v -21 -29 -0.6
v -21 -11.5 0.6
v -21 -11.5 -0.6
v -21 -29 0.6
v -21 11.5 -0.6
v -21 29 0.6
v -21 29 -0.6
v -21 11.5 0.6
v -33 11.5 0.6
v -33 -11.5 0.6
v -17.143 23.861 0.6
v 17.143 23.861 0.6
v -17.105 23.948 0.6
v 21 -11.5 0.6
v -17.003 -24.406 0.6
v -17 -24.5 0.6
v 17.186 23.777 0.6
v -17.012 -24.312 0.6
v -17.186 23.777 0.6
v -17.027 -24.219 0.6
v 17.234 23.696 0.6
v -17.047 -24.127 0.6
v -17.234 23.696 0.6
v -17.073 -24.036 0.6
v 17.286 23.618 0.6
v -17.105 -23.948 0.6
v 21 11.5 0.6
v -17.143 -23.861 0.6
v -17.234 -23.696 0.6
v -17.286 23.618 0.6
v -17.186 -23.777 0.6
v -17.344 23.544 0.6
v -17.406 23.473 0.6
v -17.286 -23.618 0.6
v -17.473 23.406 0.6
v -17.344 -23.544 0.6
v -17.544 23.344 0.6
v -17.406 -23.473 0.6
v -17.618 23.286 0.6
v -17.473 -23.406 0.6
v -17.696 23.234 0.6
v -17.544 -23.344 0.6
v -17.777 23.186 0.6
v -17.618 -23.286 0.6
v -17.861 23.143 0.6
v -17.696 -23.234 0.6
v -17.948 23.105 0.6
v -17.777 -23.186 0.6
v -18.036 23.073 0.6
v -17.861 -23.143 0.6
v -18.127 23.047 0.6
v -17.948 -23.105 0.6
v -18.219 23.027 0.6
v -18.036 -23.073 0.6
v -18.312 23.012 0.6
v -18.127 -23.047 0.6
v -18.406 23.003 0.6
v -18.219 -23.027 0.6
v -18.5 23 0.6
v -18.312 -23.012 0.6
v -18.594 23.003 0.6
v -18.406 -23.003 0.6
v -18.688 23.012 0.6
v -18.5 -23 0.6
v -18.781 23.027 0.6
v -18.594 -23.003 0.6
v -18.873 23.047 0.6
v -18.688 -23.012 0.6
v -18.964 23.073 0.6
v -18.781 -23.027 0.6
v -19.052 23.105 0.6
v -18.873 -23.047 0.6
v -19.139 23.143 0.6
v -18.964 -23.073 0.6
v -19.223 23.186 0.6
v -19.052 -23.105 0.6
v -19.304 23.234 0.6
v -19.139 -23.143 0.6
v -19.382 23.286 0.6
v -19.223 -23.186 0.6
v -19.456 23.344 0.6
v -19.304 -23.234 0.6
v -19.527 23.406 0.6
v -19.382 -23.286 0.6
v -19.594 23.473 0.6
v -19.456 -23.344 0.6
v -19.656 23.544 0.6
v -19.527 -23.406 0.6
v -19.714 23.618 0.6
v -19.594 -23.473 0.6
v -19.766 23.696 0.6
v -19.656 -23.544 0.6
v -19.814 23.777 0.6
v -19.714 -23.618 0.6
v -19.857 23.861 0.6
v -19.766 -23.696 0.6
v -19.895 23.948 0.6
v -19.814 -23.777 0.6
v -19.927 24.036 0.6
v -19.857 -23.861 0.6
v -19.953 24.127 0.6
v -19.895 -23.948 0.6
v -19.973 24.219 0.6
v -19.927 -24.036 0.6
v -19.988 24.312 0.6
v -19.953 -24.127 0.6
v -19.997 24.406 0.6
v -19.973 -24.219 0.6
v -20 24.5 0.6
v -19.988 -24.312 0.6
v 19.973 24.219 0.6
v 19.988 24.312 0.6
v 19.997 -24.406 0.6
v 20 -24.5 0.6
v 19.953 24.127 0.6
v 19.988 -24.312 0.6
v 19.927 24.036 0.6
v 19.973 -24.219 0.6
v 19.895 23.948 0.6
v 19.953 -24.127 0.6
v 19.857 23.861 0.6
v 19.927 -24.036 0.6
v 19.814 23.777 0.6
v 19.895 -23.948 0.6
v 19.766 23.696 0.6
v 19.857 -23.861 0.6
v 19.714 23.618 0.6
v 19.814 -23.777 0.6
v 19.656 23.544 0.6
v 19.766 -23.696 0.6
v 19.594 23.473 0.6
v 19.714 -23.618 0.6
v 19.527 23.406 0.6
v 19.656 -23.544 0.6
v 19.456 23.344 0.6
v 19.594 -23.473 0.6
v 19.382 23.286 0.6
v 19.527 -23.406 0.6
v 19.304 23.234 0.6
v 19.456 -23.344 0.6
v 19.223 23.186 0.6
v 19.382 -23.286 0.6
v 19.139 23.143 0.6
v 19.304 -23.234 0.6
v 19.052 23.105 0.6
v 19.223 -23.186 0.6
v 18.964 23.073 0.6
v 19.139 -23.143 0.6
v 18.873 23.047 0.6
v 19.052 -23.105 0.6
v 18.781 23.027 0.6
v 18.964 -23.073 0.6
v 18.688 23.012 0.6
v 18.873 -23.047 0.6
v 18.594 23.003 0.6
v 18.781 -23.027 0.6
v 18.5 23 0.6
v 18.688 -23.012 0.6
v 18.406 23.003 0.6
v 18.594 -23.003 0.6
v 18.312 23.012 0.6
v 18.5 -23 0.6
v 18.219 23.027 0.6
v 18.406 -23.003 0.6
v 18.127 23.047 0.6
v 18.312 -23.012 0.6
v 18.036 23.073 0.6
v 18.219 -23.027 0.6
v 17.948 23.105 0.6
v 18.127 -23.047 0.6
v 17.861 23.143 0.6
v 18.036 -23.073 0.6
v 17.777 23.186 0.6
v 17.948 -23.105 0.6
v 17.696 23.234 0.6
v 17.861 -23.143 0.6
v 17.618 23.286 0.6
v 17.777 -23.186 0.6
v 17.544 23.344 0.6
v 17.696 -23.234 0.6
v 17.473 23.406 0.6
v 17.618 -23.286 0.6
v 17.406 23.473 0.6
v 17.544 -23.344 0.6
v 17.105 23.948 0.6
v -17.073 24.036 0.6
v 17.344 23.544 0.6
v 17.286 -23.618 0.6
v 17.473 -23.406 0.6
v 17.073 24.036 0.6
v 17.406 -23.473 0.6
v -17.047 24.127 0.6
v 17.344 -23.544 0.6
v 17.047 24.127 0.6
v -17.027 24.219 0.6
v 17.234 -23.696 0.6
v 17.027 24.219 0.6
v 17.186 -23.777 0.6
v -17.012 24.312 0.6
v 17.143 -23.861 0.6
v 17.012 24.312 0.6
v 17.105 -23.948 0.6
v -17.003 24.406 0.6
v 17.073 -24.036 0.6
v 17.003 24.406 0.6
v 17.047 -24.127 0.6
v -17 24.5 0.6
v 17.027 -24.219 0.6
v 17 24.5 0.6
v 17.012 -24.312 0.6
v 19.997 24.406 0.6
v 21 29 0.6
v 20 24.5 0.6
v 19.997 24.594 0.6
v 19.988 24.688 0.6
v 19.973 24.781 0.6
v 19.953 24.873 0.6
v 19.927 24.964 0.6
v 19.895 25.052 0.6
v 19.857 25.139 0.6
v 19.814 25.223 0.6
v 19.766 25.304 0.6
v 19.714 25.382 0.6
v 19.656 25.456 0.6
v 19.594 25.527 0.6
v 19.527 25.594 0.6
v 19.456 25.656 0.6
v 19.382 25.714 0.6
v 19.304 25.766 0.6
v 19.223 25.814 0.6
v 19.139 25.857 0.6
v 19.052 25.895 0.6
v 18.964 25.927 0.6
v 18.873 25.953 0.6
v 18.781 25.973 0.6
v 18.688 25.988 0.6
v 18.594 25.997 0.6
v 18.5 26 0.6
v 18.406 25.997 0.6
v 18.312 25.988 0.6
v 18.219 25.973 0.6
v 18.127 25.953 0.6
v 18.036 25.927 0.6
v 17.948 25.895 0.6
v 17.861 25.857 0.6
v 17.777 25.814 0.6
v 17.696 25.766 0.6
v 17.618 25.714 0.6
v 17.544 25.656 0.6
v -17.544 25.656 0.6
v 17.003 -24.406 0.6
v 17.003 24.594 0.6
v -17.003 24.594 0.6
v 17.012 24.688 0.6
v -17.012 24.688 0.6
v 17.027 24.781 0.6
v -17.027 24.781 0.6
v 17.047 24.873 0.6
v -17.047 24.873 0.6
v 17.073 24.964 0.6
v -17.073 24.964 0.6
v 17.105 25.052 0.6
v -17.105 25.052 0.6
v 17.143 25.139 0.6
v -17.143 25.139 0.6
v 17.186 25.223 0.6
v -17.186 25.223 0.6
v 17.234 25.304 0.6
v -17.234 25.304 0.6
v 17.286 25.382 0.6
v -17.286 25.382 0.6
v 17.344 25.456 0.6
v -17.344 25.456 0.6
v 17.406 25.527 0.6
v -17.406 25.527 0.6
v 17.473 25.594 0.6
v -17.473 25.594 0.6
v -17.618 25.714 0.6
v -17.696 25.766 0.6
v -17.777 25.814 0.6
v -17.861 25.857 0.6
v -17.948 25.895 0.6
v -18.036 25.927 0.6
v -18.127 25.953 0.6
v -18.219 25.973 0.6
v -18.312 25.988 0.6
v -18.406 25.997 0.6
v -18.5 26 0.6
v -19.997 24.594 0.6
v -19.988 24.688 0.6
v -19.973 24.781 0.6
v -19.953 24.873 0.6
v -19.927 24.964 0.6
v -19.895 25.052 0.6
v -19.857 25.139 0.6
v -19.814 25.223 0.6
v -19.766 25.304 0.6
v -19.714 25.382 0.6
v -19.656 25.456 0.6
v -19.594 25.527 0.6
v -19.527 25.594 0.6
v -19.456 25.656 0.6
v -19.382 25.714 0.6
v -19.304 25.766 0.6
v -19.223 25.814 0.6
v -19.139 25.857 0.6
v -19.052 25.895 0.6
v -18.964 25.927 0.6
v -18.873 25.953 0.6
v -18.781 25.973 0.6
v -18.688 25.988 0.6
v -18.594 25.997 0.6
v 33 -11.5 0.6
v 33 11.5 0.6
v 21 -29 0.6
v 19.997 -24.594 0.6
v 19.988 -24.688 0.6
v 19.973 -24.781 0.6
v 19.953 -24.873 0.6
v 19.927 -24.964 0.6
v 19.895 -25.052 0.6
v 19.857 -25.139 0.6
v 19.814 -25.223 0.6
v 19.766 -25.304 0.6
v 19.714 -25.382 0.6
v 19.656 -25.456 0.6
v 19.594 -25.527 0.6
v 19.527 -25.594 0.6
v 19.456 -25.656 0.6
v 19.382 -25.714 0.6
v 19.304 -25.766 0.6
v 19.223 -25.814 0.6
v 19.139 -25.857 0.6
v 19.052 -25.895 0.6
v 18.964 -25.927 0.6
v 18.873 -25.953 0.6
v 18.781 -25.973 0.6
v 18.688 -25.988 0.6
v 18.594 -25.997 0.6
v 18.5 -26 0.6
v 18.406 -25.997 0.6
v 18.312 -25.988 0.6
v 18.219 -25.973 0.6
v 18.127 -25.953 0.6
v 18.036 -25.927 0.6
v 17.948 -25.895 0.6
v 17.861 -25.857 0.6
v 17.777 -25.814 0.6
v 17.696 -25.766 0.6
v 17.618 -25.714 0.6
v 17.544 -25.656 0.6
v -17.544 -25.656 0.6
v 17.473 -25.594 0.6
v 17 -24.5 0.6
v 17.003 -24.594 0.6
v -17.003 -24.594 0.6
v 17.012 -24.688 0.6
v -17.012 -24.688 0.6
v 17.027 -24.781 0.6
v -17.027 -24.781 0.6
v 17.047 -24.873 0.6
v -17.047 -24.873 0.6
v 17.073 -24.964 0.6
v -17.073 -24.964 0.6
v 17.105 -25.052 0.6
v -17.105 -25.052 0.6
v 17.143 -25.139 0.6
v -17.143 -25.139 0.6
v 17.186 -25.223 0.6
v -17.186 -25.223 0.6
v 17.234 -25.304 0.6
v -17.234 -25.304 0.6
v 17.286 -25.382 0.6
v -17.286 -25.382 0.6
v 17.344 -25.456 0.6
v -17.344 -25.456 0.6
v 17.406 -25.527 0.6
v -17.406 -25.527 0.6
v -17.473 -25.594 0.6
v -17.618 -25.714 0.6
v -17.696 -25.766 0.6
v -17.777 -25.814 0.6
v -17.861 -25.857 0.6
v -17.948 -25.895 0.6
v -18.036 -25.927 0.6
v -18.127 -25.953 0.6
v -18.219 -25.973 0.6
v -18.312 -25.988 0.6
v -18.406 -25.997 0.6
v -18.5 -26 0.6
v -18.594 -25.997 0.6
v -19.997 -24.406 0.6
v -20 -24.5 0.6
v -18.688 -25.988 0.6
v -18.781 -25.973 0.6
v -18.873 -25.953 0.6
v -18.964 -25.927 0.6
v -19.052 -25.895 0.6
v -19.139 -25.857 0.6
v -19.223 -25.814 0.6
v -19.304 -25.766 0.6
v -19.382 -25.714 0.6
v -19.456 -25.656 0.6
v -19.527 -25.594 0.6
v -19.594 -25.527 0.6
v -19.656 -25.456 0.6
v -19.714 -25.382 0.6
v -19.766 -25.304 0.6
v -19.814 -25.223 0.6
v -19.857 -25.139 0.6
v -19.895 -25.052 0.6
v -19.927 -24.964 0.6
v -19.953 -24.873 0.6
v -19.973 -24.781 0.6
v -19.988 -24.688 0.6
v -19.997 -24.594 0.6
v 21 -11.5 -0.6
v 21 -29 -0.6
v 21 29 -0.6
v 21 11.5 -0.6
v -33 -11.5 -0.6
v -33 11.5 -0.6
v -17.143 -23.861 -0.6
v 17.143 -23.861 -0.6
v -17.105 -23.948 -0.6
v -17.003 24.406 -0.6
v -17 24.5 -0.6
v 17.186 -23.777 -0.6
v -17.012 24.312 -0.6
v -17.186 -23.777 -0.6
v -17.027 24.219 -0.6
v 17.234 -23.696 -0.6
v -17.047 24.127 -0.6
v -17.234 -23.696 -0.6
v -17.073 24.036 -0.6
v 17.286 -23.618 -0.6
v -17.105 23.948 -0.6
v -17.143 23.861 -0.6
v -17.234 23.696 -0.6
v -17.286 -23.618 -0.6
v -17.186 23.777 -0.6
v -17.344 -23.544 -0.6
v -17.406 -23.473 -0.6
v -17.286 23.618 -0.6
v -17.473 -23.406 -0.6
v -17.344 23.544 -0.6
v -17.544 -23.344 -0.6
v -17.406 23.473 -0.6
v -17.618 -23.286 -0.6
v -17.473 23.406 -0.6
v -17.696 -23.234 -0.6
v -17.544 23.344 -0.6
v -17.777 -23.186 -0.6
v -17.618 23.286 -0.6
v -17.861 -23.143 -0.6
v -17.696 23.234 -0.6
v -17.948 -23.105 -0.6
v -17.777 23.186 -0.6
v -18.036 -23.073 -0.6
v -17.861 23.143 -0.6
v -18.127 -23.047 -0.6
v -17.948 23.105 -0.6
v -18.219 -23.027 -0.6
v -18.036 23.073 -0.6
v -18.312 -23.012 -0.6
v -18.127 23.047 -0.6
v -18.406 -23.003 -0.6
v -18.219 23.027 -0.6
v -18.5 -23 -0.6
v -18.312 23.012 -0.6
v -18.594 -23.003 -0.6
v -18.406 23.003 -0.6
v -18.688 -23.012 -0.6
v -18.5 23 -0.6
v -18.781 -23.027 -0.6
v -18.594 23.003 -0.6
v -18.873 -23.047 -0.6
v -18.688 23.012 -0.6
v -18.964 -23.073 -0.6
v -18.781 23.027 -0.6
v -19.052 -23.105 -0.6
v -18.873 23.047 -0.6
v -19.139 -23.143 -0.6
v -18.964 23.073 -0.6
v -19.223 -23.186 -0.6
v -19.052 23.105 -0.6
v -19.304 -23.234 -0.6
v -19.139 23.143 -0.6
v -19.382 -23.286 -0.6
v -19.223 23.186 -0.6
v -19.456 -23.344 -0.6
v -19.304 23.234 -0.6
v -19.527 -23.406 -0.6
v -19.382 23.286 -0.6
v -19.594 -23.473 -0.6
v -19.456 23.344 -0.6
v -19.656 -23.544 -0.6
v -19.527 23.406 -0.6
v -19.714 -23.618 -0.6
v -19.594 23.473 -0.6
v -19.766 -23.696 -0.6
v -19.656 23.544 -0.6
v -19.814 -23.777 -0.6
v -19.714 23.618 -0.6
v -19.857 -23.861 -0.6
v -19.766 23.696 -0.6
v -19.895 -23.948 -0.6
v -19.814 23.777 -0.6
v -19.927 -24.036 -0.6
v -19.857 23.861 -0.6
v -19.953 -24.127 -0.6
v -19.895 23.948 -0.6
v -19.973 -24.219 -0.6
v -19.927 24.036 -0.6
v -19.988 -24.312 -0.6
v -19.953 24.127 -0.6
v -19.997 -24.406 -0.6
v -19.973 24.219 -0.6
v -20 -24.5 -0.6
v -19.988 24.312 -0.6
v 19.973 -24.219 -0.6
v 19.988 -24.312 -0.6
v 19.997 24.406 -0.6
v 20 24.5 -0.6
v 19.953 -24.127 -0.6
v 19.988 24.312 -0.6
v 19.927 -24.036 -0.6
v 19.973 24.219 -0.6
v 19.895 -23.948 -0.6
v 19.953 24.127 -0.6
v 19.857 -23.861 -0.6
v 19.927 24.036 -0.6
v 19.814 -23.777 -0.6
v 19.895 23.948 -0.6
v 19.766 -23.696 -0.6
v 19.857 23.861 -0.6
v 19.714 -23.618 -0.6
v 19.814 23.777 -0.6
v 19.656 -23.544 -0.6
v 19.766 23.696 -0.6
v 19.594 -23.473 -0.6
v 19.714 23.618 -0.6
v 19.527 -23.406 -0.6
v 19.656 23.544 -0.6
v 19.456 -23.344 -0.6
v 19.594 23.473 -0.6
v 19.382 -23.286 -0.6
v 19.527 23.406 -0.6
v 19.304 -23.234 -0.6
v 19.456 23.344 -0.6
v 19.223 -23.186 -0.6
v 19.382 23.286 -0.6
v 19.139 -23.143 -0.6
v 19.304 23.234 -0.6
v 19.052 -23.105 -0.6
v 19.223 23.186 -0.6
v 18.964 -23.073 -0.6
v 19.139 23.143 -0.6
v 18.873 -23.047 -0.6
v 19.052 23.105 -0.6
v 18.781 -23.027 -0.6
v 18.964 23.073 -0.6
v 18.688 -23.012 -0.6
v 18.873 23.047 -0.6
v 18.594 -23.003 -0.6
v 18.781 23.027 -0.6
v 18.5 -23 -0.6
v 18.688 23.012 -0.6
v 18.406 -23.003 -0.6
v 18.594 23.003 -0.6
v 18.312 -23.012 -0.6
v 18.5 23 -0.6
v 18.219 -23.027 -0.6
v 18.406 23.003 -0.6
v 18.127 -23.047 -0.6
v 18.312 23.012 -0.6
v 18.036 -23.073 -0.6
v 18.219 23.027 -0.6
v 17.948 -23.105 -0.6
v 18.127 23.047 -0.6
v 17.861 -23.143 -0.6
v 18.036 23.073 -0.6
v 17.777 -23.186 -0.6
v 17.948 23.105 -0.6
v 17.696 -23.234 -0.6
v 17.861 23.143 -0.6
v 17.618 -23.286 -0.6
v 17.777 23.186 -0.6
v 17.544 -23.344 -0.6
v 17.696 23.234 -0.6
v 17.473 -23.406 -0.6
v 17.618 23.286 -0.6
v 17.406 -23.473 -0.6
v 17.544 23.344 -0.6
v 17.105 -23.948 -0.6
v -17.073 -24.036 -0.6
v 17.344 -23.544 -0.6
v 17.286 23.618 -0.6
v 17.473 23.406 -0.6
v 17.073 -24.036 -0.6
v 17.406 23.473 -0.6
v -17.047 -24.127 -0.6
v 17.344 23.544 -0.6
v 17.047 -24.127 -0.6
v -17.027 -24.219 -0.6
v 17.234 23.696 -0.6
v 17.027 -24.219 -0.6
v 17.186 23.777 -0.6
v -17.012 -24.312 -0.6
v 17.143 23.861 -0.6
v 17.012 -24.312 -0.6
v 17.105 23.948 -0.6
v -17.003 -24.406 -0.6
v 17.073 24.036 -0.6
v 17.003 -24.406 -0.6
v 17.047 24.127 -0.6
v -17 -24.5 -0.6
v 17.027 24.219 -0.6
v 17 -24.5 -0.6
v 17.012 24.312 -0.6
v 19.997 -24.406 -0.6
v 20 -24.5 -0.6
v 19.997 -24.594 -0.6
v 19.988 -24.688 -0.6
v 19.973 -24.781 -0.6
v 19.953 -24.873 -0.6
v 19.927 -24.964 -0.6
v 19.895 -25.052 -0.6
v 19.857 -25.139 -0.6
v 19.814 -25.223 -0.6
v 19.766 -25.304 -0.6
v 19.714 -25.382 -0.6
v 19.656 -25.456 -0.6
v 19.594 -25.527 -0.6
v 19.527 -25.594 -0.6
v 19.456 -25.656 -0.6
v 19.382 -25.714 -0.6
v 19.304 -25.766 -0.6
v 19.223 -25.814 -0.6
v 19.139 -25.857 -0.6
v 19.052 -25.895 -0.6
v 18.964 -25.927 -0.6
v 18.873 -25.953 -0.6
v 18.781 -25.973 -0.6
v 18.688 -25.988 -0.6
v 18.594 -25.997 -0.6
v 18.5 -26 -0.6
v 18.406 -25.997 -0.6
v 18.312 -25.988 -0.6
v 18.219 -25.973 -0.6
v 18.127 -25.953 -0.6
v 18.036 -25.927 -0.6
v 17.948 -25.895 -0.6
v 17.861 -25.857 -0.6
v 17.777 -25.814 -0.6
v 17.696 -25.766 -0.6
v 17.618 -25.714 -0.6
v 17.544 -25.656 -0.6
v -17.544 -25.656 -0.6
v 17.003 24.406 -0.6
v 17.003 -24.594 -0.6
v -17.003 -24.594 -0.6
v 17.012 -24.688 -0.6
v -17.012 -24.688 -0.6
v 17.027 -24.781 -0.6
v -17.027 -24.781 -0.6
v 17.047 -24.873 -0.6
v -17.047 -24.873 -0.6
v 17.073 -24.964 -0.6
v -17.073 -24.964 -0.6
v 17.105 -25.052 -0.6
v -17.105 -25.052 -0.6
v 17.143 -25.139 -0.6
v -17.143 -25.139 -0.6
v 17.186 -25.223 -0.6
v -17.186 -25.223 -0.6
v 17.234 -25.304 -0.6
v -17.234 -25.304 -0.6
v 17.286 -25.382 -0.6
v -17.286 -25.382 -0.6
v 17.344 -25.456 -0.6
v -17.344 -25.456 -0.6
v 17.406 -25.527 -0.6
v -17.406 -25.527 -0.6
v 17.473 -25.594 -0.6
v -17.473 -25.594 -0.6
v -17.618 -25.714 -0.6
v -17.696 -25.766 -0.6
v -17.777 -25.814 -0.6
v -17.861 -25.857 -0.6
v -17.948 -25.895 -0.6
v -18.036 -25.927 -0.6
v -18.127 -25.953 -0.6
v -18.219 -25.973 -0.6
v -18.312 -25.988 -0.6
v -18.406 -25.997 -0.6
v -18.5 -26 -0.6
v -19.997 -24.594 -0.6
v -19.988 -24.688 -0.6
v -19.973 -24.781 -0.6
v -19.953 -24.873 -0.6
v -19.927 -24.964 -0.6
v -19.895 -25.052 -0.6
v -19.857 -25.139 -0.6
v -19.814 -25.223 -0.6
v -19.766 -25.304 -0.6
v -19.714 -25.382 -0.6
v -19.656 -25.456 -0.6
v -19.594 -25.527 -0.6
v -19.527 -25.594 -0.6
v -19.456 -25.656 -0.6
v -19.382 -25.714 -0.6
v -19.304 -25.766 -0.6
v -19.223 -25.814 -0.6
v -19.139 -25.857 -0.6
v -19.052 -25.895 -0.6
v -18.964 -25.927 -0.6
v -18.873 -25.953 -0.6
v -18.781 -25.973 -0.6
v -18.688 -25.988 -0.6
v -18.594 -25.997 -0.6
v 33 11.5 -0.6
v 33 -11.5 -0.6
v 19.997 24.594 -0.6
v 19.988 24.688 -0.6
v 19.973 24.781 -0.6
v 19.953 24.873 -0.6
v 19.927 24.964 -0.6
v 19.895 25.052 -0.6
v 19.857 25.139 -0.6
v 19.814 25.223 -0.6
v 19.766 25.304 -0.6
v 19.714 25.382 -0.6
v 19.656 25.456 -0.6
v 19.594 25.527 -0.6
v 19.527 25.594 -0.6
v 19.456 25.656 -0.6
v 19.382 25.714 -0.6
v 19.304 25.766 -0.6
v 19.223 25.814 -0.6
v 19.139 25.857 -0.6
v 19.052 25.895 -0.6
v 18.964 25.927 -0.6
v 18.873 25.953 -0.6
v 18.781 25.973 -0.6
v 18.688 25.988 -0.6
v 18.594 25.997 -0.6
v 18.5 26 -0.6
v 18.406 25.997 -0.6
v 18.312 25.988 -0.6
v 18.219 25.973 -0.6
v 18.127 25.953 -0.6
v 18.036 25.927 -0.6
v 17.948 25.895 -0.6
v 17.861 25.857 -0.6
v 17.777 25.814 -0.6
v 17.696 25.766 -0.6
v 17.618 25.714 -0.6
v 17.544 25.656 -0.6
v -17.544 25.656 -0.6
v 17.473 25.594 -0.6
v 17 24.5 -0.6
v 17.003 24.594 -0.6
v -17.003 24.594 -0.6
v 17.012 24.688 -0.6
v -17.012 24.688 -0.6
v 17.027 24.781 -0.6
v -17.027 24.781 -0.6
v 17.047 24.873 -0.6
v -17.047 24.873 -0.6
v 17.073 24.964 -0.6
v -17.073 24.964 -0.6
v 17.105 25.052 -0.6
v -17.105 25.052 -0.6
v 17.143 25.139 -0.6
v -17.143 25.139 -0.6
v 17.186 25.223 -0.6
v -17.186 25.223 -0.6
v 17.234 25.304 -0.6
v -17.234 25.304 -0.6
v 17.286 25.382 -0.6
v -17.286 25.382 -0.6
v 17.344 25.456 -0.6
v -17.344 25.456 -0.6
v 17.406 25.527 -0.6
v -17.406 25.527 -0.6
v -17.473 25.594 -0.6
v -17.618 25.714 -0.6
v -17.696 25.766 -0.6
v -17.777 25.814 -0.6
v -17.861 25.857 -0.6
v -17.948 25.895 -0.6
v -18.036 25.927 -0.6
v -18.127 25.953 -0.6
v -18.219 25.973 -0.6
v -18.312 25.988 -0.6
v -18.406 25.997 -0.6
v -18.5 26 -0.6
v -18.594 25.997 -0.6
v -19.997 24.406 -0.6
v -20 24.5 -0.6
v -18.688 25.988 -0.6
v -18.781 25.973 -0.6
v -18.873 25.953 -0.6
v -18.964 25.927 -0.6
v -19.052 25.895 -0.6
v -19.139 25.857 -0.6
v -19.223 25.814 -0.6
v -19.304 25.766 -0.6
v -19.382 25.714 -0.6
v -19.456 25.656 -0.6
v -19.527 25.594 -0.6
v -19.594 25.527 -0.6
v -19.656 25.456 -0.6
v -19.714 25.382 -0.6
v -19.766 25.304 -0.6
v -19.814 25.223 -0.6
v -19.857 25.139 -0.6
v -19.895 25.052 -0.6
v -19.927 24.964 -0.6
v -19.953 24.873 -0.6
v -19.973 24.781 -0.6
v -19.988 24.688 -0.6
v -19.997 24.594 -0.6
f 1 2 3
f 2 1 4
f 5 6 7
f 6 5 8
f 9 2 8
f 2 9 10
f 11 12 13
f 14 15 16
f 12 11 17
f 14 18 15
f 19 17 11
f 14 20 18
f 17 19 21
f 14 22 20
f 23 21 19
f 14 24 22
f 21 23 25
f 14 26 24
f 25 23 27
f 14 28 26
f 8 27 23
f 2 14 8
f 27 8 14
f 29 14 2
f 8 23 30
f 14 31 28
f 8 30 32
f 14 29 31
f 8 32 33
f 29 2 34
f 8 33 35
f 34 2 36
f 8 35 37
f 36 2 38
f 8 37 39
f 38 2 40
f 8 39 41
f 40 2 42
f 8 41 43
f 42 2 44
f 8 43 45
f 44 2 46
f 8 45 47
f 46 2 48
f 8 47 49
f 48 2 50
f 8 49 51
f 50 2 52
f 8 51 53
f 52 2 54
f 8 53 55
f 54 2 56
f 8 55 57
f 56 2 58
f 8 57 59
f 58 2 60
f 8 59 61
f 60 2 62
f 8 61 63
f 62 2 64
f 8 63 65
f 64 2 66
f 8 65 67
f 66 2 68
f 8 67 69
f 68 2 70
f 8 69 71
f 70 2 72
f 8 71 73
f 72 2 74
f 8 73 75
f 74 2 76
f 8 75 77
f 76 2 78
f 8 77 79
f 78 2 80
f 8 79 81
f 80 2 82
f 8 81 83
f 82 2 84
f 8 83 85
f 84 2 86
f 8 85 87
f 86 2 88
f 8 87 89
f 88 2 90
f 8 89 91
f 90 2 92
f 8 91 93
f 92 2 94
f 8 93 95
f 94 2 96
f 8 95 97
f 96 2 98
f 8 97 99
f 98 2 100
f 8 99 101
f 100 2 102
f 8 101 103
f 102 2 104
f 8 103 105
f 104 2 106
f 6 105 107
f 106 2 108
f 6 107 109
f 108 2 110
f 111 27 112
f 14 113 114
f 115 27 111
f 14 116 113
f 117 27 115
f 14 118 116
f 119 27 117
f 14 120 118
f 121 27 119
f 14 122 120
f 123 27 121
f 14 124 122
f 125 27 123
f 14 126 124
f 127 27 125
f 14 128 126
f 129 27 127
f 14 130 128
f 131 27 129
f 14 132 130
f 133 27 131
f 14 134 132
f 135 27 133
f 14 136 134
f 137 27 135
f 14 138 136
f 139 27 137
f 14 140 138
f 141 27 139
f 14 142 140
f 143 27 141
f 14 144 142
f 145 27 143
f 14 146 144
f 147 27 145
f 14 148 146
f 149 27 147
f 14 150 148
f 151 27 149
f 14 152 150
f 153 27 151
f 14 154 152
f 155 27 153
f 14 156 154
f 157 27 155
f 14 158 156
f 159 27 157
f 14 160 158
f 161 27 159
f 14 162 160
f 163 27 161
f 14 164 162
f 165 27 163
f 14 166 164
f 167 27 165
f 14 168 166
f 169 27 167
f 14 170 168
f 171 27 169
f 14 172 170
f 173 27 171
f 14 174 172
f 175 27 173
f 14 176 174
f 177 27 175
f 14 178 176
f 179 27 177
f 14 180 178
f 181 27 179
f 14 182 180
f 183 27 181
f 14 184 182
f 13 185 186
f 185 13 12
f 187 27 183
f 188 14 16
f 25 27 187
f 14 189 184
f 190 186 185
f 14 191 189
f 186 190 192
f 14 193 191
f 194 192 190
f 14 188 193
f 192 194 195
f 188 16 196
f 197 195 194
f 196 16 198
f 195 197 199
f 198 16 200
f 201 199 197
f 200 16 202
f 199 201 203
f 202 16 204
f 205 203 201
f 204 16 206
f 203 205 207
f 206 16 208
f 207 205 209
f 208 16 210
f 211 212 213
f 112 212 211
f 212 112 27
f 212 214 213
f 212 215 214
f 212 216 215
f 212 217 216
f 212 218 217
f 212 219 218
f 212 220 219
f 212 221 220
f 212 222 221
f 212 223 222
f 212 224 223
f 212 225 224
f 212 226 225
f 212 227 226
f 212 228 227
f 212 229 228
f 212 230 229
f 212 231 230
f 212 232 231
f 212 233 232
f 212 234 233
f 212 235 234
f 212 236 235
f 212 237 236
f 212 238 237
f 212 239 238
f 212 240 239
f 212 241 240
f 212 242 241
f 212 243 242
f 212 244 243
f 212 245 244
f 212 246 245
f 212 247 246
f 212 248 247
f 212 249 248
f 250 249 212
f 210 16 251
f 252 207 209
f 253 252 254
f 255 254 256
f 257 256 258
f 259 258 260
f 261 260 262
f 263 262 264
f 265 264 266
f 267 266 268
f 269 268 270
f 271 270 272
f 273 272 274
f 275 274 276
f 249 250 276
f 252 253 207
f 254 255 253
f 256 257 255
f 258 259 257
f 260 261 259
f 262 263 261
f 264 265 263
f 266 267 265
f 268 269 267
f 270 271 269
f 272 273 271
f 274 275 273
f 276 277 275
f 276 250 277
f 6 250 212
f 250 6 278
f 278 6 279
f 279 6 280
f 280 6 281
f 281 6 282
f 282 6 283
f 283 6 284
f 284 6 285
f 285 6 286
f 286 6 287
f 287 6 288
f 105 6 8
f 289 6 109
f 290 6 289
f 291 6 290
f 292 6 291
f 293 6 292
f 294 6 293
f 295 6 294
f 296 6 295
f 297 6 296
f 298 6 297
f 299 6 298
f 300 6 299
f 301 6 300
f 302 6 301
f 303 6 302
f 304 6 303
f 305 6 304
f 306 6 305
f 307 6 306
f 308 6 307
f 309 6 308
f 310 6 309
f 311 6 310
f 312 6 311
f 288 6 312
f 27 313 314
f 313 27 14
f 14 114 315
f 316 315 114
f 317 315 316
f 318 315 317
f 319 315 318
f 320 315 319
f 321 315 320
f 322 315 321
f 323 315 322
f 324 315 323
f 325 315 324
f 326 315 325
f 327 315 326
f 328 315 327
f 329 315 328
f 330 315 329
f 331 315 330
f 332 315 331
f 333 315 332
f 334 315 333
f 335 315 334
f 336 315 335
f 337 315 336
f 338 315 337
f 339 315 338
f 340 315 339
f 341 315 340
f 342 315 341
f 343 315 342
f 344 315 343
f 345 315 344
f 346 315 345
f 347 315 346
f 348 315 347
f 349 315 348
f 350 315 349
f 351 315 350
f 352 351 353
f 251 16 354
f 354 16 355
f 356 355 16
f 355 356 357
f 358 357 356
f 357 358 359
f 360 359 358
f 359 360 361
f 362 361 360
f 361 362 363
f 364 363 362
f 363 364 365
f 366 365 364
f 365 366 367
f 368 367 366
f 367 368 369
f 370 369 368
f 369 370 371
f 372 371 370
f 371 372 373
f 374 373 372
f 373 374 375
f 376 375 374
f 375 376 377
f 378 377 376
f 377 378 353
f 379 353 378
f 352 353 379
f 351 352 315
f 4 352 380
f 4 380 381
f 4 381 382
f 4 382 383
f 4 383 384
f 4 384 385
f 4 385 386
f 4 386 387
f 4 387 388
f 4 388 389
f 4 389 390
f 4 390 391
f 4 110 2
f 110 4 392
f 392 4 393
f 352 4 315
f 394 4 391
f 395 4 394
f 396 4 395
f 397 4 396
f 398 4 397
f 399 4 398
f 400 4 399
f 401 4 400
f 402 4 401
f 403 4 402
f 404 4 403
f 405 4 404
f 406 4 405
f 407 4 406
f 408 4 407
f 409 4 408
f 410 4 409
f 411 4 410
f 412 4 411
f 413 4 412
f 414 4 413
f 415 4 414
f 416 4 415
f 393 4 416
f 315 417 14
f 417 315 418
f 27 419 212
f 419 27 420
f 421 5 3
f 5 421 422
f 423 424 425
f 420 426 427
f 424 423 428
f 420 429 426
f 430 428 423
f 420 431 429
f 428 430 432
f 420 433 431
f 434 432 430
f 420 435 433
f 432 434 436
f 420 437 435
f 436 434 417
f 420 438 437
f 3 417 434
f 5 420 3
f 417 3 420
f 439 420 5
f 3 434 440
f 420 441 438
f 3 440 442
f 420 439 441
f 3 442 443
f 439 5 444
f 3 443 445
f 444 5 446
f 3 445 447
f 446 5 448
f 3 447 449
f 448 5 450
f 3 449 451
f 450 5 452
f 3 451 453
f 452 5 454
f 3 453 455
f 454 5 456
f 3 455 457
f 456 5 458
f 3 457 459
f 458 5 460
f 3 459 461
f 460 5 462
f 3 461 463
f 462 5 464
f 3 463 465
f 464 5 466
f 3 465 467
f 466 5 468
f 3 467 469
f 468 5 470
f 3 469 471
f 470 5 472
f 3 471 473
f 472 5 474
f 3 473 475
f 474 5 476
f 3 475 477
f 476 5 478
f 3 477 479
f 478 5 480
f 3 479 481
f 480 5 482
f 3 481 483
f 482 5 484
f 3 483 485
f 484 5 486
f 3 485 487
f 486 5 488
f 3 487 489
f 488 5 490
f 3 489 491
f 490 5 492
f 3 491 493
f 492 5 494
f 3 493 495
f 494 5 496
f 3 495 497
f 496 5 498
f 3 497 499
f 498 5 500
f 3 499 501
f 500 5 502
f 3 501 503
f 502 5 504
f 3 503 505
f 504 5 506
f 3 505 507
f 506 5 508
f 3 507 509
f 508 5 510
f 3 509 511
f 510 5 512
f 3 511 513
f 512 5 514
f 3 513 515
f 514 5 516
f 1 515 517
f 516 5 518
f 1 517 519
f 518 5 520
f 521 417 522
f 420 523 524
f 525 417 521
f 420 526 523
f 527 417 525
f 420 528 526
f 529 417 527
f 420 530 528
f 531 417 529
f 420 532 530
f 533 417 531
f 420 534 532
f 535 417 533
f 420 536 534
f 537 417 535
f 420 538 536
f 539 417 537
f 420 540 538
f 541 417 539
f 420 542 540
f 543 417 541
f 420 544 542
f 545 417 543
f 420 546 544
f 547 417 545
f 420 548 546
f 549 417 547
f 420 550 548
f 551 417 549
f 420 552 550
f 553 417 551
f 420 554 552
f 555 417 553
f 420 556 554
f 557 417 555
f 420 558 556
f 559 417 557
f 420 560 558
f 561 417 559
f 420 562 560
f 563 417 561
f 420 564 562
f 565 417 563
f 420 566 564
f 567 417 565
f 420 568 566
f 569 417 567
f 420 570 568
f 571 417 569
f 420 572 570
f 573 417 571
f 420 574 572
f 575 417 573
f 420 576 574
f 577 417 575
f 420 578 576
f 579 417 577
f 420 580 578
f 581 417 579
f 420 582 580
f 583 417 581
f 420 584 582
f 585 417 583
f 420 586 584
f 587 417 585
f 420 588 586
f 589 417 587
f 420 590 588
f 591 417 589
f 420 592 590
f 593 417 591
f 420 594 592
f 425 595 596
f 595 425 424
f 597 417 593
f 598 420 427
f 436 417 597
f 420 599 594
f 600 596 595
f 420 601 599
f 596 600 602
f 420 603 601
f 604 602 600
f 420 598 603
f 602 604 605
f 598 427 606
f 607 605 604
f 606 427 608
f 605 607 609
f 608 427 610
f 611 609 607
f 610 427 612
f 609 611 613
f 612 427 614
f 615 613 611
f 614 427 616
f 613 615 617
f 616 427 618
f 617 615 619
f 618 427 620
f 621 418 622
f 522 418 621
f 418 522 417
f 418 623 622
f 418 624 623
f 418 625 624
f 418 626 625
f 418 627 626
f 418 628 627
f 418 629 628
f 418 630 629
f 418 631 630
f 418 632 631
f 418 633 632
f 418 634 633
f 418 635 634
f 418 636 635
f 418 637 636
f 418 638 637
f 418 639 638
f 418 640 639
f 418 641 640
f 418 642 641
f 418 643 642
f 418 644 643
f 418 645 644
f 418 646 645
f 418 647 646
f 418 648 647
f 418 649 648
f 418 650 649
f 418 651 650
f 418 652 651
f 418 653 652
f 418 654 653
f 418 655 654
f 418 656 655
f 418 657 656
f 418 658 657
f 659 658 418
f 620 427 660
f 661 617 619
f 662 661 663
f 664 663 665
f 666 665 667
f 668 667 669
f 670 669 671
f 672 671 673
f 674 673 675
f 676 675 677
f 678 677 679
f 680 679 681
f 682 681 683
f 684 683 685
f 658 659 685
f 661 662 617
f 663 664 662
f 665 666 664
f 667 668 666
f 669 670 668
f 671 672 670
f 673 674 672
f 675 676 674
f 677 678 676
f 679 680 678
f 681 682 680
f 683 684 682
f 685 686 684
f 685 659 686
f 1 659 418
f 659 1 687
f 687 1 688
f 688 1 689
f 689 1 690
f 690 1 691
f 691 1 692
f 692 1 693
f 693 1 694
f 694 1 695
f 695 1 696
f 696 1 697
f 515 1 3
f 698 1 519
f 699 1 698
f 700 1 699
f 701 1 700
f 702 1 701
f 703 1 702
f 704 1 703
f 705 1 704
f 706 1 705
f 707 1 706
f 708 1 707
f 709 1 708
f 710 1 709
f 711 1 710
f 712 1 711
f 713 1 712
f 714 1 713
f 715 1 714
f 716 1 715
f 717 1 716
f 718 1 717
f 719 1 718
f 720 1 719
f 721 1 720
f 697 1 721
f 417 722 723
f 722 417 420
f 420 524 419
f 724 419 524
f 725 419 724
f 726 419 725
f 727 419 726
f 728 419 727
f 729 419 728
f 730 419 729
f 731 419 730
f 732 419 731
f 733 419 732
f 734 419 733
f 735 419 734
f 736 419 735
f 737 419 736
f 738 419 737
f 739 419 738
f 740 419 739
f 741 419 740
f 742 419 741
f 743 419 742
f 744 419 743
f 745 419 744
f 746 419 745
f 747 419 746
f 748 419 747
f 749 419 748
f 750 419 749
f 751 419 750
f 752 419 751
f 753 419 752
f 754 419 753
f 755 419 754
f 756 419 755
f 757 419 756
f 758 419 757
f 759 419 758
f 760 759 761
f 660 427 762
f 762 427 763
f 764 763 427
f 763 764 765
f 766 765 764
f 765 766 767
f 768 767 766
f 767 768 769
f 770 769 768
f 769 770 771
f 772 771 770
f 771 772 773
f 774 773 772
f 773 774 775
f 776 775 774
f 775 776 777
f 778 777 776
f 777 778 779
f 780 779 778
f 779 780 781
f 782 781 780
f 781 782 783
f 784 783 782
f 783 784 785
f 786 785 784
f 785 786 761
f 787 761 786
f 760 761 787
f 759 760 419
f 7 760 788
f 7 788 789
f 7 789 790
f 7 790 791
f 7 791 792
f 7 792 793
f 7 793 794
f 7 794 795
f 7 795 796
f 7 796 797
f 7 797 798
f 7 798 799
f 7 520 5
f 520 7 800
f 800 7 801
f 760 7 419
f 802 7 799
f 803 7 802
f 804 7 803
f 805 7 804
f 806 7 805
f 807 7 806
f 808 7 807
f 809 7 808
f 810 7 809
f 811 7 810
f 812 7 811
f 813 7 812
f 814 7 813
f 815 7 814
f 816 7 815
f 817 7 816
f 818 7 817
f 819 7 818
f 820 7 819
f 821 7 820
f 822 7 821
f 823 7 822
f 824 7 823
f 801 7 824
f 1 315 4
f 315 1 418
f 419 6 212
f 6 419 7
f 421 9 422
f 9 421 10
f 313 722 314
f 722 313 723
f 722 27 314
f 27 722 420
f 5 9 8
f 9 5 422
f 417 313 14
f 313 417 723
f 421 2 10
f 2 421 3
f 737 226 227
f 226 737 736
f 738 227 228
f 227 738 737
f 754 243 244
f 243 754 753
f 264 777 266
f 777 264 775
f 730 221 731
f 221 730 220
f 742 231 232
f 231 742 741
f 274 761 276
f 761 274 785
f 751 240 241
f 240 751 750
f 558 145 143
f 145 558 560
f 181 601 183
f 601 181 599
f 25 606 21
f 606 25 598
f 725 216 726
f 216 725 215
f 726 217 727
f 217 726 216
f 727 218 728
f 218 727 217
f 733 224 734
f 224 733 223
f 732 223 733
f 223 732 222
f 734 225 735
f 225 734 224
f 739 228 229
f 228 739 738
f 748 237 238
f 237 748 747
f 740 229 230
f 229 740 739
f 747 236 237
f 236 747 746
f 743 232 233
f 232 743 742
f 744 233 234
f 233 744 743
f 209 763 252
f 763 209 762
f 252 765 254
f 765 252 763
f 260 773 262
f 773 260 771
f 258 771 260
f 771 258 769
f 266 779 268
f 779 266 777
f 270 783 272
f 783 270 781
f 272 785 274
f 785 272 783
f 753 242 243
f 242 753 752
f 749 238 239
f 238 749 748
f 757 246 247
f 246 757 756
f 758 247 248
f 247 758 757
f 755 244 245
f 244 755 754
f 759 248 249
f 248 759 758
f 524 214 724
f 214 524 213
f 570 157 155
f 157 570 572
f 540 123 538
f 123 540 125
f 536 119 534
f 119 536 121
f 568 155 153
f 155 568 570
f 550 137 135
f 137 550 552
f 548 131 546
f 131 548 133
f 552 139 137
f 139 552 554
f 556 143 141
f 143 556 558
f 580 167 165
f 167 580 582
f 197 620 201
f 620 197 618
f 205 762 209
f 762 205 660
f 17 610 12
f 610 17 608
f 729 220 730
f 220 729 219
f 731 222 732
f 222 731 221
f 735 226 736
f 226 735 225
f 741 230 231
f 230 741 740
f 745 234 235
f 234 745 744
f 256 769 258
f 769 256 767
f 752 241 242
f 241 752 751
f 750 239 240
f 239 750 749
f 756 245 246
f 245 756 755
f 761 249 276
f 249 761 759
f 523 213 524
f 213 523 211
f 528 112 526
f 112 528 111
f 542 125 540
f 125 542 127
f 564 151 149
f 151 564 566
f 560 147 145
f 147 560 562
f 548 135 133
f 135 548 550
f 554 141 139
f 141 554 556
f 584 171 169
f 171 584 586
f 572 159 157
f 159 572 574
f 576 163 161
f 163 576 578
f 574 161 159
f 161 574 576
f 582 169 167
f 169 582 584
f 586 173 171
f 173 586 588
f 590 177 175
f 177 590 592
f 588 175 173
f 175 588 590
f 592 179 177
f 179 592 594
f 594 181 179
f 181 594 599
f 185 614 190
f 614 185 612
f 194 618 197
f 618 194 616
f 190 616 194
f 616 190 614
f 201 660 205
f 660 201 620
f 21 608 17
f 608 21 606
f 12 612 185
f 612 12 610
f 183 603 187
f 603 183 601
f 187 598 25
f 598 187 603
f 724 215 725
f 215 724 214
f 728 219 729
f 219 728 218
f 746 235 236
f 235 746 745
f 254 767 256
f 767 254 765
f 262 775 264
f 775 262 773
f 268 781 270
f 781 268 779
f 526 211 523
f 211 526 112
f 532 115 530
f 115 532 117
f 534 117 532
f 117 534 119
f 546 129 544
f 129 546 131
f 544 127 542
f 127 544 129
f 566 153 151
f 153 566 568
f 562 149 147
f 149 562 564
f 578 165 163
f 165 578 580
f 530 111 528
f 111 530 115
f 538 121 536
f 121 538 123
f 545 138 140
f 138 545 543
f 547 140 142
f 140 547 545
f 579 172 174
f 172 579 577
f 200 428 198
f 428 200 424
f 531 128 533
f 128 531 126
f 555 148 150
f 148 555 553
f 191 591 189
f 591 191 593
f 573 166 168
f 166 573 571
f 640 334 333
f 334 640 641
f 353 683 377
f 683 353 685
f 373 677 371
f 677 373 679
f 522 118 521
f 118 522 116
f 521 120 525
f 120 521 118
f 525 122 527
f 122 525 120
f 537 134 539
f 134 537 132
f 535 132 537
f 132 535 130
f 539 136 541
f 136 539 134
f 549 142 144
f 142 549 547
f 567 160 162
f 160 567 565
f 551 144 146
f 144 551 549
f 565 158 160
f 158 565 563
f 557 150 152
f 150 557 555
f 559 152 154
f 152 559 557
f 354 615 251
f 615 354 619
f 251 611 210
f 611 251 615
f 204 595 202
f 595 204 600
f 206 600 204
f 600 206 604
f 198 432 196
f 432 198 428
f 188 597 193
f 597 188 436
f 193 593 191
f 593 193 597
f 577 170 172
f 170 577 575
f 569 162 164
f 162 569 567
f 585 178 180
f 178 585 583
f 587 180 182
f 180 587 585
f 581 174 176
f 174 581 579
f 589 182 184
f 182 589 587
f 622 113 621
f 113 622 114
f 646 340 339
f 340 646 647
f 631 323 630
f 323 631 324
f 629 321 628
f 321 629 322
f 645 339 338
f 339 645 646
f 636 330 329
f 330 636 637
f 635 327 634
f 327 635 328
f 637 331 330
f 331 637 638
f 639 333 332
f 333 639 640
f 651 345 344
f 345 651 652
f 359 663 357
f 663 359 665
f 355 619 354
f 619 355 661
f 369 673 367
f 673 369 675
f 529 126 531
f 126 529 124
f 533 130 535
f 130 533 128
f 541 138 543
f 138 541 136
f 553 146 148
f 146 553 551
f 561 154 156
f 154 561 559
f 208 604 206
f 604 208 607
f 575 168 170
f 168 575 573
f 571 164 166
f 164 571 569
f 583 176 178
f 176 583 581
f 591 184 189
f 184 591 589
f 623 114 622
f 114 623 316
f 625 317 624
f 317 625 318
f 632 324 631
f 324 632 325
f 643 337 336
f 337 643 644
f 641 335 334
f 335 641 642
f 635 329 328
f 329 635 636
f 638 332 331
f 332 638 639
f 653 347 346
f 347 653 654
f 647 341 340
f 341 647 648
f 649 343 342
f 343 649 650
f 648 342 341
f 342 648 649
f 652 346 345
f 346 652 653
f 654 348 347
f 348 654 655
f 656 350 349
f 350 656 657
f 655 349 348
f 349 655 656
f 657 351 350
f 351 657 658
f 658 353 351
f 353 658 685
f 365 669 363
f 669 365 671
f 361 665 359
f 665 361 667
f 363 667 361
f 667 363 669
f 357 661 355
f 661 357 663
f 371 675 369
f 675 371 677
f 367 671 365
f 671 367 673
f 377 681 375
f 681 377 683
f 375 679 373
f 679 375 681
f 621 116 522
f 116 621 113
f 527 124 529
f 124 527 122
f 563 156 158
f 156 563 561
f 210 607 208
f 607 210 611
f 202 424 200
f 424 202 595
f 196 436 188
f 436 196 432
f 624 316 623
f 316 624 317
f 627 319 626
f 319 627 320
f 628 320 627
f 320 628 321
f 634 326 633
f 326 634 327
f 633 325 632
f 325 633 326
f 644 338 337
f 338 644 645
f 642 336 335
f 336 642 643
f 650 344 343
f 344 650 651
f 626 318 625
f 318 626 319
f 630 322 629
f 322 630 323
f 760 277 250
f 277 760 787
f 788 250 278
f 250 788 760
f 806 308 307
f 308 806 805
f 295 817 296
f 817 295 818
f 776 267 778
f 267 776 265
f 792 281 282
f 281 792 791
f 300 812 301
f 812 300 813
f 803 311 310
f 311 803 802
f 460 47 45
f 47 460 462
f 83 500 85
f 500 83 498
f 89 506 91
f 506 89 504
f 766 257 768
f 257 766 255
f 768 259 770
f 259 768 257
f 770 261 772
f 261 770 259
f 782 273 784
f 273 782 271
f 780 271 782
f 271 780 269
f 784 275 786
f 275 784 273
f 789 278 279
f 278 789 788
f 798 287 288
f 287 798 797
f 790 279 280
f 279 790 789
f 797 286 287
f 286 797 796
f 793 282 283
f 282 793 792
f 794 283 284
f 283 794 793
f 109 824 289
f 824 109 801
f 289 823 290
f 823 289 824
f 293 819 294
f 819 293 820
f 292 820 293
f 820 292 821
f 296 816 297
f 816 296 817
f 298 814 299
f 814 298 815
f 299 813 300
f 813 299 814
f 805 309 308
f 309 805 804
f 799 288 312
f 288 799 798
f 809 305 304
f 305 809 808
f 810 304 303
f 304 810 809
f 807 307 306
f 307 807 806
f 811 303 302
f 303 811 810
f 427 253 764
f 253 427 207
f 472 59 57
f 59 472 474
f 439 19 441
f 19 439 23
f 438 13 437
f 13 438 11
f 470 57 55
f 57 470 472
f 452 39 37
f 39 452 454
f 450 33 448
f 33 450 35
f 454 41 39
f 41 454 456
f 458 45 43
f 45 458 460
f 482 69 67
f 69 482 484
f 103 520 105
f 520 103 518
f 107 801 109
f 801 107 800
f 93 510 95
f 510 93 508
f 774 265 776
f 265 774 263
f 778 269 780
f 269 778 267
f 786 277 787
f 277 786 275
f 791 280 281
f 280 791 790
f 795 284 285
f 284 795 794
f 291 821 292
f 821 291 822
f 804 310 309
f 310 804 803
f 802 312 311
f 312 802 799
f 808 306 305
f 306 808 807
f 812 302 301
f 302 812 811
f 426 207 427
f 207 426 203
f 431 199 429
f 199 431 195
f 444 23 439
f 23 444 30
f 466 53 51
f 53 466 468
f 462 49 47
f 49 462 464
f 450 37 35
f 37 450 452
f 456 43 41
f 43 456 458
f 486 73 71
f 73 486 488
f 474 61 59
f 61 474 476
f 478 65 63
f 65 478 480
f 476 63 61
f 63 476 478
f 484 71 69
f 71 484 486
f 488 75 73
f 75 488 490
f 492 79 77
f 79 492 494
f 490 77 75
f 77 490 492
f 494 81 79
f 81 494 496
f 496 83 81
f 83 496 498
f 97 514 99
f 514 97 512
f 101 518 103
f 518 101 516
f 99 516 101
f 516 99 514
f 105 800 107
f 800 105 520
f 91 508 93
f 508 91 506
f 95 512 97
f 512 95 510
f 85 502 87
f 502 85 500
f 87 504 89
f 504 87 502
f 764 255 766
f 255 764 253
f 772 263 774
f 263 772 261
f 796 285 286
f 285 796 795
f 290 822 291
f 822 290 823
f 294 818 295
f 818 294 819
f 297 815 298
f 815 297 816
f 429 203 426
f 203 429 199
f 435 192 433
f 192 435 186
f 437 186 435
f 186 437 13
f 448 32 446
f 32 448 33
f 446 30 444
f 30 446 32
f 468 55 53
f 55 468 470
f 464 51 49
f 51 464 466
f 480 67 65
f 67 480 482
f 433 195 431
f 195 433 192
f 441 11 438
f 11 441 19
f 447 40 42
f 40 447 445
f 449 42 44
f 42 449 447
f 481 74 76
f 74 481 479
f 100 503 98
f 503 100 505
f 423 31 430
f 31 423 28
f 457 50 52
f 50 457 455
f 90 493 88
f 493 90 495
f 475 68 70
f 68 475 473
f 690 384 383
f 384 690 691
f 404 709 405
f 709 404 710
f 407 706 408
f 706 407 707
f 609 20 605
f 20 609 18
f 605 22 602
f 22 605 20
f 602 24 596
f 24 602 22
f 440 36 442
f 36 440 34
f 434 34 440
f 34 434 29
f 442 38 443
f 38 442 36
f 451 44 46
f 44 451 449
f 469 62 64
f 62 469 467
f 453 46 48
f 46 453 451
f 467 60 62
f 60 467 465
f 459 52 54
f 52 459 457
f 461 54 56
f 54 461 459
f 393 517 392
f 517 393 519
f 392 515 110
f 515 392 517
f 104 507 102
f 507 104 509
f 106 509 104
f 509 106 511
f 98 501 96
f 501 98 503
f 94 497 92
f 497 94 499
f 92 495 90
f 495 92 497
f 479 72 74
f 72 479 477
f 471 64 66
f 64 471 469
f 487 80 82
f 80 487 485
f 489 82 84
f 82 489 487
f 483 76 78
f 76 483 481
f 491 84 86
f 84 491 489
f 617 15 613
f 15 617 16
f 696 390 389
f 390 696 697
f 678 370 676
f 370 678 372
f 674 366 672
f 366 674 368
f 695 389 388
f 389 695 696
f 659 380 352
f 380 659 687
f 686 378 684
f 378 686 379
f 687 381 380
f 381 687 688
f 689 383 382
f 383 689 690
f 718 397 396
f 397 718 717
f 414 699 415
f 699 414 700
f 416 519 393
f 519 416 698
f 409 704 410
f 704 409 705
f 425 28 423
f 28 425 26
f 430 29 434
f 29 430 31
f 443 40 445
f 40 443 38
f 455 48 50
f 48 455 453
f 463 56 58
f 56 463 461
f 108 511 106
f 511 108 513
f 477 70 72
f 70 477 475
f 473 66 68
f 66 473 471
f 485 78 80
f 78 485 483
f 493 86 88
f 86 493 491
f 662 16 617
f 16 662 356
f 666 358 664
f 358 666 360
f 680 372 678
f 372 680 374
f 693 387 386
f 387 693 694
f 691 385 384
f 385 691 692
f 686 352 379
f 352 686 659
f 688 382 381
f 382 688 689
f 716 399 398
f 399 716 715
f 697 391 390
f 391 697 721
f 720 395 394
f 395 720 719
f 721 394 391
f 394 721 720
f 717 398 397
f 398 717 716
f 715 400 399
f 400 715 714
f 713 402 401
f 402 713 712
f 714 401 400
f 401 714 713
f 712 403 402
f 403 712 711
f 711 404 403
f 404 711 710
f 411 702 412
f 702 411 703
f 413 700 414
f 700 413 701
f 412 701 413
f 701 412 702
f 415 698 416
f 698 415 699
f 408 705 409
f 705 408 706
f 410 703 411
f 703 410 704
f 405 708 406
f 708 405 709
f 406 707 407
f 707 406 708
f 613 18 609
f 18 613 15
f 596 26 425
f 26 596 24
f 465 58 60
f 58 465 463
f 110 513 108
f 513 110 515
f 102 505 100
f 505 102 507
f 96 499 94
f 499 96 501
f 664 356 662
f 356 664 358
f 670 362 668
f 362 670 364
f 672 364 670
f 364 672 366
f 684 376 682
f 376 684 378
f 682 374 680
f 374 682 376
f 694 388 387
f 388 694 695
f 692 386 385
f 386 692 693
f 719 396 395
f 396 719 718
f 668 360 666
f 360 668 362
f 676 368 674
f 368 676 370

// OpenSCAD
// file: ../lib/hardware_shop.scad
/*
 * Copyright (c) 2019, Vigibot
 * All rights reserved.
 * 
 * Redistribution and use in source and binary forms, with or without modification, are permitted provided that the following conditions are met:
 *   * Redistributions of source code must retain the above copyright notice, this list of conditions and the following disclaimer.
 *   * Redistributions in binary form must reproduce the above copyright notice, this list of conditions and the following disclaimer in the documentation and/or other materials provided with the distribution.
 * 
 * Description: OpenSCAD design for hardware shop things like screws
 * Design:      Gilles Bouissac
 * Author:      Gilles Bouissac
 */

M2_DS  = 1.8;  // Thread diameter
M2_DPT = 2.2;  // Passing diameter tight
M2_DPL = 2.5;  // Passing diameter loose
M2_DH  = 4.0;  // Head diameter

M25_DS  = 2.1;  // Thread diameter
M25_DPL = 3.0;  // Passing diameter loose
M25_DH  = 4.5;  // Head diameter

// ----------------------------------------
//                  API
// ----------------------------------------

// screws with tight passage
module screwM2Tight ( lt=10, lp=5, lh=2 ) {
    screwMx( M2_DS, M2_DPT, M2_DH, lt, lp, lh );
}

// screws with loose passage
module screwM2 ( lt=10, lp=5, lh=2 ) {
    screwMx( M2_DS, M2_DPL, M2_DH, lt, lp, lh );
}
module screwM25 ( lt=10, lp=5, lh=2 ) {
    screwMx( M25_DS, M25_DPL, M25_DH, lt, lp, lh );
}

module screwShape(diameter, distx, disty) {
    translate([distx, disty, 0]) {
        cylinder(r = diameter / 2, h=100, center = true);
    }
}

// Render an array of vertical screws without mirroring
//   Each screw is rendered once
// Params:
//   holes = [
//     [ <diam>, <pos_x>, <pos_y> ],
//     ...
//     [ <diam>, <pos_x>, <pos_y> ]
//   ]
module screwArray( screws ) {
    for(screwParams = screws)
        screwShape(screwParams[0], screwParams[1], screwParams[2]);
}

// ----------------------------------------
//            Implementation
// ----------------------------------------

// drill any Mx screw:
//   dt: Thread diameter
//   dp: Passing diameter
//   dh: Thread diameter
//   lt: Thread length (from z=0 to z+)
//   lp: Passing length (from z=0 to z-)
//   lh: Head length (from z=-lp to z-)
module screwMx ( ds, dp, dh, lt=10, lp=5, lh=2 ) {
    translate( [0,0,lt/2] )
        cylinder (r = ds/2, h = lt+0.1, center = true);
    translate( [0,0,-lp/2] )
        cylinder (r = dp/2, h = lp+0.1, center = true);
    translate( [0,0,-lp-lh/2] )
        cylinder (r = dh/2, h = lh, center = true);
}

// ----------------------------------------
//                 Showcase
// ----------------------------------------

color( "cyan" )
translate( [ -3, -3, 0 ] )
screwM2Tight( $fn=100 );

color( "cyan" )
translate( [  3, -3, 0 ] )
screwM2( $fn=100 );

color( "orange" )
translate( [  -3, 3, 0 ] )
screwM25( $fn=100 );
// main file
/*
 * Copyright (c) 2019, Vigibot
 * All rights reserved.
 * 
 * Redistribution and use in source and binary forms, with or without modification, are permitted provided that the following conditions are met:
 *   * Redistributions of source code must retain the above copyright notice, this list of conditions and the following disclaimer.
 *   * Redistributions in binary form must reproduce the above copyright notice, this list of conditions and the following disclaimer in the documentation and/or other materials provided with the distribution.
 * 
 * Description: OpenSCAD design for Vigibot bottom plate
 * Design:      Quillès Jonathan / Pascal Piazzalungua
 * Author:      Gilles Bouissac
 */

use <../lib/hardware_shop.scad>

// ----------------------------------------
//                  API
// ----------------------------------------

PLATE_SX = 66 ;
PLATE_SY = 58 ;
PLATE_SZ = 1.20 ;

MOTOR_X = 12.0;
MOTOR_Y = 17.5;

HOLE_X = 18.5;
HOLE_Y = 24.5;

module plateBottom() {
    difference() {
        plateBottomShape();
        translate( [+HOLE_X,+HOLE_Y,5] ) screwM25(0,10);
        translate( [+HOLE_X,-HOLE_Y,5] ) screwM25(0,10);
        translate( [-HOLE_X,+HOLE_Y,5] ) screwM25(0,10);
        translate( [-HOLE_X,-HOLE_Y,5] ) screwM25(0,10);
    }
}

// ----------------------------------------
//            Implementation
// ----------------------------------------

module plateBottomShape() {
    cube ( [PLATE_SX-2*MOTOR_X, PLATE_SY, PLATE_SZ], center=true);
    cube ( [PLATE_SX, PLATE_SY-2*MOTOR_Y, PLATE_SZ], center=true);
}

// ----------------------------------------
//                 Showcase
// ----------------------------------------
plateBottom($fn=100);

//%import( "../../stl/plate_bottom.stl" );
